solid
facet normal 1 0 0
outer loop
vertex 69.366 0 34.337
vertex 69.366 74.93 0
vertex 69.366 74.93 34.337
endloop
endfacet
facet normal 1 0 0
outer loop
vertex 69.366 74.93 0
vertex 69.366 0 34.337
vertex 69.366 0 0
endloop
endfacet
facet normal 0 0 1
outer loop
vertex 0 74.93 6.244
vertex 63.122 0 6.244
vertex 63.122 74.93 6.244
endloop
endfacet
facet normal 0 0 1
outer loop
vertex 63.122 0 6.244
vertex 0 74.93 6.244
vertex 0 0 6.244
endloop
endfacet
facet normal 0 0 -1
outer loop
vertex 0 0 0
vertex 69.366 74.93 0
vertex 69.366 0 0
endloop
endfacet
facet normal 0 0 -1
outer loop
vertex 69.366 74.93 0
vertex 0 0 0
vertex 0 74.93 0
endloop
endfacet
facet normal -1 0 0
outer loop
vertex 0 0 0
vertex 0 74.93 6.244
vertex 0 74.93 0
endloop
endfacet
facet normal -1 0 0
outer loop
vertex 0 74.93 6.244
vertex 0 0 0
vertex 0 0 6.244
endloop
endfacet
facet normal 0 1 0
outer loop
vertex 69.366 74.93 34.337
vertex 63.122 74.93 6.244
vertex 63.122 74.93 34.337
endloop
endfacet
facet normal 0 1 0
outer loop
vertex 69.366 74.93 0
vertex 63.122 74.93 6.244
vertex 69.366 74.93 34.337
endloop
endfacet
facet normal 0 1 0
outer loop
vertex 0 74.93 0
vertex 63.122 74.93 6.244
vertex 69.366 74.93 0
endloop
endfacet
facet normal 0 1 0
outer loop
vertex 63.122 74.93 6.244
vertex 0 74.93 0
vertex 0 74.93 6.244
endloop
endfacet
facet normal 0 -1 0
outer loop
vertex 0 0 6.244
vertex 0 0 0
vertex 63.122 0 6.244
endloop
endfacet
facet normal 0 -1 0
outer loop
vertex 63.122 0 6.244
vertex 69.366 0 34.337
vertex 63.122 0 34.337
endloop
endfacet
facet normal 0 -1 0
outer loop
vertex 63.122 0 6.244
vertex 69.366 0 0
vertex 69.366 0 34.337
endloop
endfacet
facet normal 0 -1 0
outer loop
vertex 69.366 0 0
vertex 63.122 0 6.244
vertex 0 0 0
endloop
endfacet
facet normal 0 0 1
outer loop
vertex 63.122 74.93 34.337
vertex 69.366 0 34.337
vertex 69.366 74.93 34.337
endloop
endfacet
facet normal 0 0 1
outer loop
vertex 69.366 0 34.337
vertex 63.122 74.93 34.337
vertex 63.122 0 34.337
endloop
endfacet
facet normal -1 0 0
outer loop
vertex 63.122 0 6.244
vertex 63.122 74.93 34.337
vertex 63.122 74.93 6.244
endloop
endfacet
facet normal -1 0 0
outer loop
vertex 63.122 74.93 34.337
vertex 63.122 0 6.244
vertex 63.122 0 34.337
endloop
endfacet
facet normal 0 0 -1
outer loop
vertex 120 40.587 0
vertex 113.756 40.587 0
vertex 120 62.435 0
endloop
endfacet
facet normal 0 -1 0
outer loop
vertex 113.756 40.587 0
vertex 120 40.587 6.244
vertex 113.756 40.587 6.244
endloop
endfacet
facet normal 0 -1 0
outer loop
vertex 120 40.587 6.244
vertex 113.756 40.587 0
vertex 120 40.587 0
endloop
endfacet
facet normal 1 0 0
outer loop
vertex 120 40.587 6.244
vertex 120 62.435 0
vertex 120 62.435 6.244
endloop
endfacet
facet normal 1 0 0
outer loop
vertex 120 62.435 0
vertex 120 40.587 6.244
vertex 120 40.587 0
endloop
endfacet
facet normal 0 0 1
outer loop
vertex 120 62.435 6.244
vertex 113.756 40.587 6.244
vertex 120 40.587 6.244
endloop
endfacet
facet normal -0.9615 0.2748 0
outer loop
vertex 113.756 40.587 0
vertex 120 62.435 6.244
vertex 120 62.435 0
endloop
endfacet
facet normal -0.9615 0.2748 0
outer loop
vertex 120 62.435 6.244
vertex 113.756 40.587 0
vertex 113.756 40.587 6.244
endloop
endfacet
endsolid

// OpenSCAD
/* doodle-meta {"version":1,"parameters":{"width":{"label":"Overall width","description":"Changes the overall width of the bracket along the X-axis","unit":"mm","feature":"body_width"},"depth":{"label":"Overall depth","description":"Changes the overall depth of the bracket along the Y-axis","unit":"mm","feature":"body_depth"},"height":{"label":"Overall height","description":"Changes the overall height of the bracket along the Z-axis","unit":"mm","feature":"body_height"},"base_thickness":{"label":"Base thickness","description":"Changes the thickness of the horizontal base plate","unit":"mm","feature":"base_thickness"},"wall_thickness":{"label":"Wall thickness","description":"Changes the thickness of the vertical back wall","unit":"mm","feature":"wall_thickness"},"rib_thickness":{"label":"Rib thickness","description":"Changes the thickness of the angled support rib","unit":"mm","feature":"rib_thickness"},"hole_diameter":{"label":"Hole diameter","description":"Changes the diameter of the mounting holes","unit":"mm","feature":"holes"}},"features":{"body_width":{"kind":"dimension","axis":"x","label":"Overall width"},"body_depth":{"kind":"dimension","axis":"y","label":"Overall depth"},"body_height":{"kind":"dimension","axis":"z","label":"Overall height"},"base_thickness":{"kind":"region","label":"Base plate","min":[0,0,0],"max":[{"parameter":"width"},{"parameter":"depth"},{"parameter":"base_thickness"}]},"wall_thickness":{"kind":"region","label":"Vertical wall","min":[{"parameter":"width","scale":0.8,"offset":0},0,0],"max":[{"parameter":"width"},{"parameter":"depth"},{"parameter":"height"}]},"rib_thickness":{"kind":"region","label":"Support rib","min":[{"parameter":"width","scale":0.5},{"parameter":"depth","scale":0.4},{"parameter":"base_thickness"}],"max":[{"parameter":"width","scale":0.8},{"parameter":"depth","scale":0.6},{"parameter":"height","scale":0.8}]},"holes":{"kind":"region","label":"Mounting holes","min":[{"parameter":"width","scale":0.1},{"parameter":"depth","scale":0.1},0],"max":[{"parameter":"width","scale":0.9},{"parameter":"depth","scale":0.9},{"parameter":"height"}]}}} */

// Overall dimensions
width = 69.36621916952856;
depth = 74.92975335622853;
height = 34.336559475491725;

// Component thicknesses
base_thickness = 6.2441461130190445;
wall_thickness = 6.2441461130190445;
rib_thickness = 6.2441461130190445;

// Hole parameters
hole_diameter = 6.2441461130190445;

// Derived positions
wall_x_start = width - wall_thickness;
rib_x_start = wall_x_start - rib_thickness;
rib_top_z = height - base_thickness;

// Hole positions (derived from view measurements)
hole1_x = 17.5;
hole1_y = 89.0;
hole2_x = 91.7;
hole2_y = 16.4;
hole2_z = 46.5;

// Epsilon for clean cuts
eps = 0.01;

module base_plate() {
    cube([width, depth, base_thickness]);
}

module vertical_wall() {
    translate([wall_x_start, 0, 0])
        cube([wall_thickness, depth, height]);
}

module support_rib() {
    // Triangular rib connecting wall to base
    // Vertices in XZ plane (extruded along Y)
    // (rib_x_start, base_thickness) -> (wall_x_start, base_thickness) -> (wall_x_start, rib_top_z)
    polygon([
        [rib_x_start, base_thickness],
        [wall_x_start, base_thickness],
        [wall_x_start, rib_top_z]
    ]);
}

module rib_extrusion() {
    linear_extrude(height = rib_thickness)
        support_rib();
}

module hole_base() {
    // Hole through base plate (axis along Z)
    translate([hole1_x, hole1_y, -eps])
        cylinder(h = base_thickness + 2*eps, d = hole_diameter, center = false);
}

module hole_wall() {
    // Hole through vertical wall (axis along X)
    translate([wall_x_start - eps, hole2_y, hole2_z])
        rotate([0, 90, 0])
            cylinder(h = wall_thickness + 2*eps, d = hole_diameter, center = false);
}

// Main assembly
difference() {
    union() {
        base_plate();
        vertical_wall();
        translate([rib_x_start, (depth - rib_thickness)/2, 0])
            rib_extrusion();
    }
    hole_base();
    hole_wall();
}
